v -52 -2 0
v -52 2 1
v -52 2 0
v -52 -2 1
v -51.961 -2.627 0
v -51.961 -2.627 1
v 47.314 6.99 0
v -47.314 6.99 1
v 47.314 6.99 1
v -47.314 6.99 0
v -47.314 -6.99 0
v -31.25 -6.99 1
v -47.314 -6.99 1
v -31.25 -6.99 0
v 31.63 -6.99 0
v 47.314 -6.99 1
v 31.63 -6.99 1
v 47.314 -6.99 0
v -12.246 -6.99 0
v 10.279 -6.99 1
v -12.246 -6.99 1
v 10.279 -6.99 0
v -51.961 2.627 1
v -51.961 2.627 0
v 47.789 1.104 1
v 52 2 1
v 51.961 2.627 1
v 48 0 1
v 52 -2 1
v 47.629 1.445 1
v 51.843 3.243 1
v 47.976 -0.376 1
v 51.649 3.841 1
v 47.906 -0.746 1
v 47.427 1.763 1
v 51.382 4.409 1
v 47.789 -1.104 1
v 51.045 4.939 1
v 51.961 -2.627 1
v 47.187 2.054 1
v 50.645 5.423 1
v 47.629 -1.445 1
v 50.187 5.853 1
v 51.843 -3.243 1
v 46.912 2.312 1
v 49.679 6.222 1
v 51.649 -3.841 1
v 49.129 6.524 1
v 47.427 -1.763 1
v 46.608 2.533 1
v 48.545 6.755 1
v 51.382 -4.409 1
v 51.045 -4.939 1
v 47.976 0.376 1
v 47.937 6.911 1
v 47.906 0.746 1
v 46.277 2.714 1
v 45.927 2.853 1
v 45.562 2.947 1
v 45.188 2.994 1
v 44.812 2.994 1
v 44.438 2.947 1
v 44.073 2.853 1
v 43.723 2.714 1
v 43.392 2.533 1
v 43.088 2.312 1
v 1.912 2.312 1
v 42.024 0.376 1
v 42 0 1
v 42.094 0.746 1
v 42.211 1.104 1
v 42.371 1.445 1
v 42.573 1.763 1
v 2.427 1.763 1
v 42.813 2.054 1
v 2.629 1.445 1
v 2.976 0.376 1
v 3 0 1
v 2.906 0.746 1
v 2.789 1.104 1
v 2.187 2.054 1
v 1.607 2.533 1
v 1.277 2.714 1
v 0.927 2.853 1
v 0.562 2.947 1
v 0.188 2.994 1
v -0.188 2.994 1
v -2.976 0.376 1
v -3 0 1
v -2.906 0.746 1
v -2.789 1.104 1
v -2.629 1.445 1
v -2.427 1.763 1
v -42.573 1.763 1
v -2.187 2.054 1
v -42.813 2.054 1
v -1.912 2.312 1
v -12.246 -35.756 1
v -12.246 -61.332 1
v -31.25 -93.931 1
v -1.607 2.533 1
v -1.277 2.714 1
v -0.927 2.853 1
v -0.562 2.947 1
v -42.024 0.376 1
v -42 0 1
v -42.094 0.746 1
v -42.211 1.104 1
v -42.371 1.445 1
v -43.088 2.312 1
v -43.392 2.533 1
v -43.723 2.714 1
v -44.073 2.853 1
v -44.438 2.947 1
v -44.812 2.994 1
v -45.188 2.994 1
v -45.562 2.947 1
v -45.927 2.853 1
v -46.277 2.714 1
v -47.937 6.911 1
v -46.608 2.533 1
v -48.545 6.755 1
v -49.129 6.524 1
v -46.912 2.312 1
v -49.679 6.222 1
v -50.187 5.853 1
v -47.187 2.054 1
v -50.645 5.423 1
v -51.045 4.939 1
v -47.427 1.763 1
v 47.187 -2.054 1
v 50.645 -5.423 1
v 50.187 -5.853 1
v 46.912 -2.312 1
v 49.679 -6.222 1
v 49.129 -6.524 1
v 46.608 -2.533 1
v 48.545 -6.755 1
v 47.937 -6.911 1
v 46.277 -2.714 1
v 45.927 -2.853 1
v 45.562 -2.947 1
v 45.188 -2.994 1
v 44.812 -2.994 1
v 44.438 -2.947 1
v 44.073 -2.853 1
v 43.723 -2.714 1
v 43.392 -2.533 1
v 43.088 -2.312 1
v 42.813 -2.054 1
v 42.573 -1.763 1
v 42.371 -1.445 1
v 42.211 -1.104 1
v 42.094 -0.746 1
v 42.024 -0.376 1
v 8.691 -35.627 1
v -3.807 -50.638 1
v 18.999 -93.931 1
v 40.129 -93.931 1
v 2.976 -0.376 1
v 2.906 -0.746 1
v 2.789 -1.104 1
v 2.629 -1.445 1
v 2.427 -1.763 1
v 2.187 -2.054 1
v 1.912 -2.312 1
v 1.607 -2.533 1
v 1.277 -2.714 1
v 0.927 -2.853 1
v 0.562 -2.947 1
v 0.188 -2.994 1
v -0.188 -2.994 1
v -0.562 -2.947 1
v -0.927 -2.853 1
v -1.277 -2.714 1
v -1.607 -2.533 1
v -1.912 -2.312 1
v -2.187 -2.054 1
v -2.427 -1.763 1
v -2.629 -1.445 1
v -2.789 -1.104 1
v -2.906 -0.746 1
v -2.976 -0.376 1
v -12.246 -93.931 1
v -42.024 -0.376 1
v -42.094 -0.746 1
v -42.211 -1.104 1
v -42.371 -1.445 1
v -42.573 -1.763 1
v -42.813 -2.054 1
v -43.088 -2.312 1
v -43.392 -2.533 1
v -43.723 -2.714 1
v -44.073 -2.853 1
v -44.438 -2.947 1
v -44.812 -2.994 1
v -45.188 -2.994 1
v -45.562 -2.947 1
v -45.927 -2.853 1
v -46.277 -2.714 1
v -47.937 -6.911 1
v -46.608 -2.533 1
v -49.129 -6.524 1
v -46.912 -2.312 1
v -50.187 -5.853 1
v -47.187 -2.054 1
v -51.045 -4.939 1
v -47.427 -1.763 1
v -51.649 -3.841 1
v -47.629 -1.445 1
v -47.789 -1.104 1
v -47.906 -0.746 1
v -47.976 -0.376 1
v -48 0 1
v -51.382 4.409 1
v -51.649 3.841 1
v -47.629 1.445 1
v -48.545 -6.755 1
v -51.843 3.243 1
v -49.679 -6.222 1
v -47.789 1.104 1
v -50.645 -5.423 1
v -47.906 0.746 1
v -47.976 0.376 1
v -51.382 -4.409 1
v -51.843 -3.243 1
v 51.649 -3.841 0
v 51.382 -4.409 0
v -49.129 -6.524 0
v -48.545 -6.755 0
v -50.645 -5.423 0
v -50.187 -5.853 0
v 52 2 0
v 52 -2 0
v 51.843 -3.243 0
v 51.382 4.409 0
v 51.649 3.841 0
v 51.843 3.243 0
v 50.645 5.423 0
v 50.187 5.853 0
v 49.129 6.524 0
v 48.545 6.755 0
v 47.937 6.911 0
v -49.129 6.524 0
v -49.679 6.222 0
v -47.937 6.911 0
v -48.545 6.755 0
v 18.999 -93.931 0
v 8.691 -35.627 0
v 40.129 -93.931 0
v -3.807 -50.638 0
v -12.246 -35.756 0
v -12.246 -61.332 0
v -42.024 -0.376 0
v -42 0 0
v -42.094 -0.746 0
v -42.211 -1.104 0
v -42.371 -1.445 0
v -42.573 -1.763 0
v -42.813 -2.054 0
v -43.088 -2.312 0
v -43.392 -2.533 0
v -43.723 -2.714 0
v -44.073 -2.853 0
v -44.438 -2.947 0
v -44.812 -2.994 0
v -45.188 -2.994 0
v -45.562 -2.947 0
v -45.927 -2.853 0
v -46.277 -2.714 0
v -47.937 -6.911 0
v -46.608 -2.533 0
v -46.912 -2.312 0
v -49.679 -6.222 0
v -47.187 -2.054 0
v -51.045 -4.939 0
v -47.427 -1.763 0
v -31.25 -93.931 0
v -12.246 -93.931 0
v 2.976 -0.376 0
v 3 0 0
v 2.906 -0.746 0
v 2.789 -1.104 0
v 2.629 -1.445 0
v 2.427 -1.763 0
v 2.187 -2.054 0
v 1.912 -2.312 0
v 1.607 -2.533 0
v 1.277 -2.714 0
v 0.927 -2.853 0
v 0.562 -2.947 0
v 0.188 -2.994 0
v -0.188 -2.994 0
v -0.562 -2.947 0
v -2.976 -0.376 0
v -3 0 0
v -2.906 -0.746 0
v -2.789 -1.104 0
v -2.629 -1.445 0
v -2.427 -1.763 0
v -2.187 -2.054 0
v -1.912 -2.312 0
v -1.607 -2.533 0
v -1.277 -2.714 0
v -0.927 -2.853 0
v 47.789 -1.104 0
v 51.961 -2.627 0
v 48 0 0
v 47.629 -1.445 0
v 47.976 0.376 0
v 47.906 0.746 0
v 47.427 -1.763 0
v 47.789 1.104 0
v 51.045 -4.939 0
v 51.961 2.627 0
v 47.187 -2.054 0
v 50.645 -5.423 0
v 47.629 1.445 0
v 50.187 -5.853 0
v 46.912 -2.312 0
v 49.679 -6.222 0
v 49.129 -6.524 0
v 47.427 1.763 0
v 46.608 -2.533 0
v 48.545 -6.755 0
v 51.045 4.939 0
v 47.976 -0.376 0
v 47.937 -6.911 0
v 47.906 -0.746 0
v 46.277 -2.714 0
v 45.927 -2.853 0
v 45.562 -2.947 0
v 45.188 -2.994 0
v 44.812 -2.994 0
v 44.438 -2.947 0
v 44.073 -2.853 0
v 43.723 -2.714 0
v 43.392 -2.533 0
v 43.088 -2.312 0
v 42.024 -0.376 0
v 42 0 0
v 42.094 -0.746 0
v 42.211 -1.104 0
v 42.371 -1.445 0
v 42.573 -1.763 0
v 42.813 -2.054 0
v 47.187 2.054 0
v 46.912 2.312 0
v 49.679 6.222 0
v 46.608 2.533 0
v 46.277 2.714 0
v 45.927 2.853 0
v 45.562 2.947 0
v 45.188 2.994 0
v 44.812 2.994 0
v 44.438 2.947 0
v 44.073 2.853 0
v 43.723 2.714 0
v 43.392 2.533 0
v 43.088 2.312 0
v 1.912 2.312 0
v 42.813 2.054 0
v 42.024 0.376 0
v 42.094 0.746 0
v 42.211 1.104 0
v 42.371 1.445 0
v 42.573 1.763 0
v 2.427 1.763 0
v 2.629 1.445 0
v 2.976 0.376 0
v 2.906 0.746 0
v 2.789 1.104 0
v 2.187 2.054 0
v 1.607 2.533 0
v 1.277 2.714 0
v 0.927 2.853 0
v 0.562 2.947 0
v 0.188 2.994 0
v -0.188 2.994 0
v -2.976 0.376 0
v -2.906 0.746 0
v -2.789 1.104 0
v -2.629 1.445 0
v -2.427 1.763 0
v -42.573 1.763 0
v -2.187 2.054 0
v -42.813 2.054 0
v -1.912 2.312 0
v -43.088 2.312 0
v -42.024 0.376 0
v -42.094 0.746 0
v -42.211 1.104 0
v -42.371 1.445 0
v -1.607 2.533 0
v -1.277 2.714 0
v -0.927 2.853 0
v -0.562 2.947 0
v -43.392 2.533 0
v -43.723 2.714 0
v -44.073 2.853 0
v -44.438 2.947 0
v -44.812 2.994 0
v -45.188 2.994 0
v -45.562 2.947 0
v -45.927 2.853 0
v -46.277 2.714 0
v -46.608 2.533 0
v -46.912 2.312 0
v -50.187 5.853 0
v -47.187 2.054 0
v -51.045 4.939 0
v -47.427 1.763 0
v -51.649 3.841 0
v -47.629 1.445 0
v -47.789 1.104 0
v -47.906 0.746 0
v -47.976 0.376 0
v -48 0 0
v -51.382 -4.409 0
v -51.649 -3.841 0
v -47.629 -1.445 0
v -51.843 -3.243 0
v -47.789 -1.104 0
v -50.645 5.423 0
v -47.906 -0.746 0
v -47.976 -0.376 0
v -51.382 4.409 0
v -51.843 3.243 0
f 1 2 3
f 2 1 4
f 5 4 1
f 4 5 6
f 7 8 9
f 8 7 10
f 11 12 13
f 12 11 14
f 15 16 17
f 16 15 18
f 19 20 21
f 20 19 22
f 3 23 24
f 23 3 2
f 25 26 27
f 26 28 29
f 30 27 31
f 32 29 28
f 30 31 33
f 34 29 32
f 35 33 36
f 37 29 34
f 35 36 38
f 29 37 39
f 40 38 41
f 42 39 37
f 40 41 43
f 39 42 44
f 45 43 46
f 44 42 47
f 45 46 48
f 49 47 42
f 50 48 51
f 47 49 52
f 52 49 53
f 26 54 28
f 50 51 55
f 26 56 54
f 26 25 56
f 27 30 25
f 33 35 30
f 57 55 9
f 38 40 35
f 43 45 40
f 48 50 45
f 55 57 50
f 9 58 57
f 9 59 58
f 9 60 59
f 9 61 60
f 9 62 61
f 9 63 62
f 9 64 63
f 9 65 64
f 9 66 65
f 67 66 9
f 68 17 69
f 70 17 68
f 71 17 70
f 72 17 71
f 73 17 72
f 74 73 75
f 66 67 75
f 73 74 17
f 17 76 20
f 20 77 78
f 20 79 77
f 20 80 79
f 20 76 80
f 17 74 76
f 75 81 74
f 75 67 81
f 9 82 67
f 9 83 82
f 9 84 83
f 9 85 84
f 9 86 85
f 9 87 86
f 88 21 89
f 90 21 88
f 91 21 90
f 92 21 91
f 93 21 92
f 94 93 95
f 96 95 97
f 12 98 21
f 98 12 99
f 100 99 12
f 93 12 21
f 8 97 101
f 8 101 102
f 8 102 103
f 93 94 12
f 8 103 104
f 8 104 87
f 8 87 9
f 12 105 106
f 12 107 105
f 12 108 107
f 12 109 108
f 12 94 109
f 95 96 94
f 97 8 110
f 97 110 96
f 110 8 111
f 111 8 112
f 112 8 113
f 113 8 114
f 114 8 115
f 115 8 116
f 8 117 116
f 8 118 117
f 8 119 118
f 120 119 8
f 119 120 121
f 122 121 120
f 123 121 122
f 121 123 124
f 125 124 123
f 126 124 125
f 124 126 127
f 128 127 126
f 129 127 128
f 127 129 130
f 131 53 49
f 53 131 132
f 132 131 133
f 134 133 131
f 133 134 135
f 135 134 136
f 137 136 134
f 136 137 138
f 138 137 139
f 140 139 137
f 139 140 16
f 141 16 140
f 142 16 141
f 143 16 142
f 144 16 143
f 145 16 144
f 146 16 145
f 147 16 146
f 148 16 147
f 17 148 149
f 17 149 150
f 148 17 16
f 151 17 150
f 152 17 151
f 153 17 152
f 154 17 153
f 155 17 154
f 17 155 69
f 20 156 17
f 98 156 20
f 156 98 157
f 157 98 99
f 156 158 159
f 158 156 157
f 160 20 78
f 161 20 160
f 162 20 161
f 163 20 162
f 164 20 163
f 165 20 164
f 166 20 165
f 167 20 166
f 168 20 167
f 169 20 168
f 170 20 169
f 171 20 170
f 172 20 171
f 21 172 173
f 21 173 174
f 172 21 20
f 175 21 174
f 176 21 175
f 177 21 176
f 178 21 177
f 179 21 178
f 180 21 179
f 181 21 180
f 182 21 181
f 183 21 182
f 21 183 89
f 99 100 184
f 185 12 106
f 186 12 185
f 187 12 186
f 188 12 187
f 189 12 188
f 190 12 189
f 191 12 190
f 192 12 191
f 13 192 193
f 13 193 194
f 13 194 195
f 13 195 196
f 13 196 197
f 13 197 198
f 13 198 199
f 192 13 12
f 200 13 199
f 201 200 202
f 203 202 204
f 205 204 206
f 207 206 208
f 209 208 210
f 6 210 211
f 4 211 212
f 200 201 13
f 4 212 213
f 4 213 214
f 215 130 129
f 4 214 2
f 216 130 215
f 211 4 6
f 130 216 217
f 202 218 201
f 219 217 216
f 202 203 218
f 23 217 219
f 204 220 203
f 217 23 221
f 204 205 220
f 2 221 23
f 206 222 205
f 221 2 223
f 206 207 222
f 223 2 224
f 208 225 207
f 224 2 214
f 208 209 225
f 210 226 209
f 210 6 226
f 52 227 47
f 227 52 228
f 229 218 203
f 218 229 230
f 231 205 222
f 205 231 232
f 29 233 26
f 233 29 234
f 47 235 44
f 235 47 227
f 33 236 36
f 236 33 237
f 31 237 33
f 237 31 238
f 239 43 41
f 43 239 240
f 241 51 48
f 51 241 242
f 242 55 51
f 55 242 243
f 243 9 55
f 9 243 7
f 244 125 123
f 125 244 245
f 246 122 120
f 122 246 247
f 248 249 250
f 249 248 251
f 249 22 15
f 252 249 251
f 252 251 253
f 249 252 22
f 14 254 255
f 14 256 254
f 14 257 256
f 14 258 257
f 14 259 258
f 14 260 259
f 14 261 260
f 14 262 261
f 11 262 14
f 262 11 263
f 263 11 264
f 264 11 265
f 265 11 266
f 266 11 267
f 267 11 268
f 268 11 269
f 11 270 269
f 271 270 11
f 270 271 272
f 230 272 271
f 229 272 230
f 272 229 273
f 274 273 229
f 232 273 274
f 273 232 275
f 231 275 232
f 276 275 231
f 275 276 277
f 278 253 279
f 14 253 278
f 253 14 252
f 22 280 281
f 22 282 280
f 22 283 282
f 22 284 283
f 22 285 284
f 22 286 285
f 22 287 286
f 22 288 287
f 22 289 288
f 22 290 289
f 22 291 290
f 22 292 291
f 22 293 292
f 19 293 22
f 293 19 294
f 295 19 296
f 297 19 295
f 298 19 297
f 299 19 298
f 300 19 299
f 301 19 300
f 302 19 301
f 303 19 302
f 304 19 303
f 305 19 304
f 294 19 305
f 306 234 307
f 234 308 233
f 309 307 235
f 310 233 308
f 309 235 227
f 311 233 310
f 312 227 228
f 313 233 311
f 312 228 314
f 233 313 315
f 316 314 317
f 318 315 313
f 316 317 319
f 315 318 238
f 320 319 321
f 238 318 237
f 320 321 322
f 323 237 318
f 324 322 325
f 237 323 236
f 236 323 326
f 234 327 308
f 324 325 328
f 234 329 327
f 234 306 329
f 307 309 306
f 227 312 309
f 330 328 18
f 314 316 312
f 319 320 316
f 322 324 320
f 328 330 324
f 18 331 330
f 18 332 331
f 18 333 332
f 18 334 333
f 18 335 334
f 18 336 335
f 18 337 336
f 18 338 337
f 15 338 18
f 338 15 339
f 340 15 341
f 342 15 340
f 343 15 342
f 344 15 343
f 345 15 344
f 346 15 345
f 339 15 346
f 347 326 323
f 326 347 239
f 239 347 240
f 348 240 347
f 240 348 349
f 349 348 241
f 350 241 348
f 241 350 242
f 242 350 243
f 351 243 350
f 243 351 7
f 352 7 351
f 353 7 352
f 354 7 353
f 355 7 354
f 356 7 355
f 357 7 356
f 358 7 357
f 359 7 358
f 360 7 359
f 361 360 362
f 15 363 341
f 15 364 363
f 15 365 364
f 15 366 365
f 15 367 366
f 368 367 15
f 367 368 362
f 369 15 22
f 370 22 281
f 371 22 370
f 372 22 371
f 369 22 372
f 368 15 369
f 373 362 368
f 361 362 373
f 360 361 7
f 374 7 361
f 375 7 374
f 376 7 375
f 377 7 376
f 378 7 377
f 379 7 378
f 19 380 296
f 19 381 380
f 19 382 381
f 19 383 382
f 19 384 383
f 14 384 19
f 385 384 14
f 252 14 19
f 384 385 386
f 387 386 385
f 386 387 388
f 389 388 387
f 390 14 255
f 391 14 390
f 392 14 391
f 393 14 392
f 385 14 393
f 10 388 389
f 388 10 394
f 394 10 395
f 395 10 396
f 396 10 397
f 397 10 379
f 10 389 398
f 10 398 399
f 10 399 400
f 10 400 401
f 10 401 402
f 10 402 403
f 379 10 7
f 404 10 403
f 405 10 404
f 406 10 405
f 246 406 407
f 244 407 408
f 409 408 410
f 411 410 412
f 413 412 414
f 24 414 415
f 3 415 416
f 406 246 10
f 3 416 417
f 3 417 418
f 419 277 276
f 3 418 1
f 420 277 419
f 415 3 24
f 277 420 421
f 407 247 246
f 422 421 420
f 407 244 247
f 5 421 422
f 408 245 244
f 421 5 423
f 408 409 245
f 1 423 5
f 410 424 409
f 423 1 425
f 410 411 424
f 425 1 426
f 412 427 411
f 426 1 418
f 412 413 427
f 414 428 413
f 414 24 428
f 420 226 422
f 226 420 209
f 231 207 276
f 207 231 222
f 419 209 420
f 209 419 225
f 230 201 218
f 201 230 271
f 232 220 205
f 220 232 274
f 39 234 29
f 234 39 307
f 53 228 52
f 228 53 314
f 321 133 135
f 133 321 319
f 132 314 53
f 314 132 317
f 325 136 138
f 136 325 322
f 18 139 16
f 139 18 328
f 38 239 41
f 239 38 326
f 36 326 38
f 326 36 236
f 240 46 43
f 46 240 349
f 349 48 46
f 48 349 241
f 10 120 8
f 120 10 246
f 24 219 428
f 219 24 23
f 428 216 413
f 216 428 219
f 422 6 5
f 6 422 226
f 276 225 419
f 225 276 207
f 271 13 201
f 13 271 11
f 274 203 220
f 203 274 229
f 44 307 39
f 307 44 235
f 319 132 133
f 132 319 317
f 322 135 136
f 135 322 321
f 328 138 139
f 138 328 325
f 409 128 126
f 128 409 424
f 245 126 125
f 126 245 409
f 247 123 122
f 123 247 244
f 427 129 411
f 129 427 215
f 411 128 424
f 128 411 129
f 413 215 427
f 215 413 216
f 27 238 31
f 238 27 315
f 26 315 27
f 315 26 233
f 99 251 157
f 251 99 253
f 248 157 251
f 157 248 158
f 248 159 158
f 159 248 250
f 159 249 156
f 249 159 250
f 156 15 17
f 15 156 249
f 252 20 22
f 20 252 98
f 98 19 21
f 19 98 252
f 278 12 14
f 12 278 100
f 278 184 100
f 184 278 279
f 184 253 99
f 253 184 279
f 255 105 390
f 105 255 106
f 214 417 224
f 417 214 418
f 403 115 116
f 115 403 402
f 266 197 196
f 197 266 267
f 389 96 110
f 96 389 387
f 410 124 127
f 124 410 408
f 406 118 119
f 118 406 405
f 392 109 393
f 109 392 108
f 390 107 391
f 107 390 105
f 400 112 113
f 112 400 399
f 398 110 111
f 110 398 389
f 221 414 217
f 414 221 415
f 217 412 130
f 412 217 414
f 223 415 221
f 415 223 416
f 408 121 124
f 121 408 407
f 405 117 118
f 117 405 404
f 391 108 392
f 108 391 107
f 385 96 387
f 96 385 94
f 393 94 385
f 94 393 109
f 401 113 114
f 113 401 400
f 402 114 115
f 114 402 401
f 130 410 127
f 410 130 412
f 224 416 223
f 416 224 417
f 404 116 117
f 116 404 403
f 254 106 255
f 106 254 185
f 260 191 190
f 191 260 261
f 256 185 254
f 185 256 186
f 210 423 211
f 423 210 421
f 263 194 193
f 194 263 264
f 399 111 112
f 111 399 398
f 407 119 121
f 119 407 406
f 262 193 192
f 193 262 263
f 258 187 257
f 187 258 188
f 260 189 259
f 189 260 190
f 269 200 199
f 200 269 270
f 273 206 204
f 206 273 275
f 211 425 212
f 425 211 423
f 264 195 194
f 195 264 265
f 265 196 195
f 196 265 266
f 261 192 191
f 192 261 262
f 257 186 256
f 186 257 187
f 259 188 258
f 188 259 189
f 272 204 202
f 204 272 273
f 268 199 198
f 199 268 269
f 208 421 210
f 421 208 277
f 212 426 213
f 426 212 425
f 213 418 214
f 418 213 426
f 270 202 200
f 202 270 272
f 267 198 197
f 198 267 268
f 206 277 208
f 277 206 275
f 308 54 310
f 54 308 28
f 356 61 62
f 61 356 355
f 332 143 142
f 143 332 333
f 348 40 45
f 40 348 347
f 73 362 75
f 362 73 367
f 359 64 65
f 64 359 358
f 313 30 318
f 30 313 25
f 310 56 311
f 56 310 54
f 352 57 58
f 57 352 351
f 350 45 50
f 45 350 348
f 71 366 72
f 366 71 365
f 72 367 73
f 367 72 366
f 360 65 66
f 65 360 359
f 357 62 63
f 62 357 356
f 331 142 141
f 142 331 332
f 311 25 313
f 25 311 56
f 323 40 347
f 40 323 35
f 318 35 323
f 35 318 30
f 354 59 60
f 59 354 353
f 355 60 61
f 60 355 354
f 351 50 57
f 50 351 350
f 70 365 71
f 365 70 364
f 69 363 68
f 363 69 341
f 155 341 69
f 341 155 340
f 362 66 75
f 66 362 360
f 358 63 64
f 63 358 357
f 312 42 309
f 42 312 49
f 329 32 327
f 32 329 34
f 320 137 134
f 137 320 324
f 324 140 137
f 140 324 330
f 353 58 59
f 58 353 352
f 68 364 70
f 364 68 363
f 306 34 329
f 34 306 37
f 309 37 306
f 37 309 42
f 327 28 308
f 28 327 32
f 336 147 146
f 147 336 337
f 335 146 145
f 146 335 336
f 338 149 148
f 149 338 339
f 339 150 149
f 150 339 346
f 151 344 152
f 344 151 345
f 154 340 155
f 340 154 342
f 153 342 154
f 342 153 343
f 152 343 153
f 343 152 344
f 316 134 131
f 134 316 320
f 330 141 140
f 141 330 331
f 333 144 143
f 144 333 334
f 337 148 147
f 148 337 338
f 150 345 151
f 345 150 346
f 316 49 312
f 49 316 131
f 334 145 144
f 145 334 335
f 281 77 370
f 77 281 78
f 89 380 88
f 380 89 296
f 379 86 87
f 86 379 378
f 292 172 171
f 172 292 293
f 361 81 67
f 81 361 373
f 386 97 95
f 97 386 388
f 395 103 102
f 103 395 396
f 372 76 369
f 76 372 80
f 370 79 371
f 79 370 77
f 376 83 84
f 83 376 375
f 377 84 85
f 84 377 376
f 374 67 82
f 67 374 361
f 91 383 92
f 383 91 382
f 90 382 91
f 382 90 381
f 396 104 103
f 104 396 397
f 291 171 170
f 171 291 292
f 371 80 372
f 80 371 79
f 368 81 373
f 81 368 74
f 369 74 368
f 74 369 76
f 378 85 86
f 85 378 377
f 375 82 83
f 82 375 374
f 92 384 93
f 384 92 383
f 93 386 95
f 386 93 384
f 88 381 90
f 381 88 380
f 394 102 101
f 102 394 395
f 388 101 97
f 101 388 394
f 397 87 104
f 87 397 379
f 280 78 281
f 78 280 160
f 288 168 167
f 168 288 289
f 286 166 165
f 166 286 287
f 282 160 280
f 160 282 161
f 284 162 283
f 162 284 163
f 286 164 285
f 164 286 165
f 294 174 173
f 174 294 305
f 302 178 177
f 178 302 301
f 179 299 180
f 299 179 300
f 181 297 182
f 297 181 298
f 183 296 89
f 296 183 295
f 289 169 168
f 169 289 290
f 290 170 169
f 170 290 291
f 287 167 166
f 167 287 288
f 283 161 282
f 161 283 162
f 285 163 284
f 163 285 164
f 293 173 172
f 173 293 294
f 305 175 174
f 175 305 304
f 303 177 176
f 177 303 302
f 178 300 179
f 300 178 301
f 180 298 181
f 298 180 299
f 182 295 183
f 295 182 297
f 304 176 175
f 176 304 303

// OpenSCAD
$fn = 50;


difference() {
	union() {
		translate(v = [0, 0, 0]) {
			rotate(a = [0, 0, 0]) {
				hull() {
					translate(v = [-47.0000000000, 2.0000000000, 0]) {
						rotate(a = [0, 0, 0]) {
							translate(v = [0, 0, 0]) {
								rotate(a = [0, 0, 0]) {
									cylinder(h = 1, r = 5);
								}
							}
						}
					}
					translate(v = [47.0000000000, 2.0000000000, 0]) {
						rotate(a = [0, 0, 0]) {
							translate(v = [0, 0, 0]) {
								rotate(a = [0, 0, 0]) {
									cylinder(h = 1, r = 5);
								}
							}
						}
					}
					translate(v = [-47.0000000000, -2.0000000000, 0]) {
						rotate(a = [0, 0, 0]) {
							translate(v = [0, 0, 0]) {
								rotate(a = [0, 0, 0]) {
									cylinder(h = 1, r = 5);
								}
							}
						}
					}
					translate(v = [47.0000000000, -2.0000000000, 0]) {
						rotate(a = [0, 0, 0]) {
							translate(v = [0, 0, 0]) {
								rotate(a = [0, 0, 0]) {
									cylinder(h = 1, r = 5);
								}
							}
						}
					}
				}
			}
		}
		translate(v = [0, 0, 0]) {
			rotate(a = [0, 0, 0]) {
				linear_extrude(height = 1) {
					text(font = "DejaVu Sans Mono:style=Bold", halign = "center", size = 95.0000000000, text = "K", valign = "top");
				}
			}
		}
	}
	union() {
		translate(v = [-45.0000000000, 0.0000000000, -125.0000000000]) {
			rotate(a = [0, 0, 0]) {
				cylinder(h = 250, r = 3.0000000000);
			}
		}
		translate(v = [45.0000000000, 0.0000000000, -125.0000000000]) {
			rotate(a = [0, 0, 0]) {
				cylinder(h = 250, r = 3.0000000000);
			}
		}
		translate(v = [45.0000000000, 0.0000000000, -125.0000000000]) {
			rotate(a = [0, 0, 0]) {
				cylinder(h = 250, r = 3.0000000000);
			}
		}
		translate(v = [0, 0, -125.0000000000]) {
			rotate(a = [0, 0, 0]) {
				cylinder(h = 250, r = 3.0000000000);
			}
		}
	}
}
